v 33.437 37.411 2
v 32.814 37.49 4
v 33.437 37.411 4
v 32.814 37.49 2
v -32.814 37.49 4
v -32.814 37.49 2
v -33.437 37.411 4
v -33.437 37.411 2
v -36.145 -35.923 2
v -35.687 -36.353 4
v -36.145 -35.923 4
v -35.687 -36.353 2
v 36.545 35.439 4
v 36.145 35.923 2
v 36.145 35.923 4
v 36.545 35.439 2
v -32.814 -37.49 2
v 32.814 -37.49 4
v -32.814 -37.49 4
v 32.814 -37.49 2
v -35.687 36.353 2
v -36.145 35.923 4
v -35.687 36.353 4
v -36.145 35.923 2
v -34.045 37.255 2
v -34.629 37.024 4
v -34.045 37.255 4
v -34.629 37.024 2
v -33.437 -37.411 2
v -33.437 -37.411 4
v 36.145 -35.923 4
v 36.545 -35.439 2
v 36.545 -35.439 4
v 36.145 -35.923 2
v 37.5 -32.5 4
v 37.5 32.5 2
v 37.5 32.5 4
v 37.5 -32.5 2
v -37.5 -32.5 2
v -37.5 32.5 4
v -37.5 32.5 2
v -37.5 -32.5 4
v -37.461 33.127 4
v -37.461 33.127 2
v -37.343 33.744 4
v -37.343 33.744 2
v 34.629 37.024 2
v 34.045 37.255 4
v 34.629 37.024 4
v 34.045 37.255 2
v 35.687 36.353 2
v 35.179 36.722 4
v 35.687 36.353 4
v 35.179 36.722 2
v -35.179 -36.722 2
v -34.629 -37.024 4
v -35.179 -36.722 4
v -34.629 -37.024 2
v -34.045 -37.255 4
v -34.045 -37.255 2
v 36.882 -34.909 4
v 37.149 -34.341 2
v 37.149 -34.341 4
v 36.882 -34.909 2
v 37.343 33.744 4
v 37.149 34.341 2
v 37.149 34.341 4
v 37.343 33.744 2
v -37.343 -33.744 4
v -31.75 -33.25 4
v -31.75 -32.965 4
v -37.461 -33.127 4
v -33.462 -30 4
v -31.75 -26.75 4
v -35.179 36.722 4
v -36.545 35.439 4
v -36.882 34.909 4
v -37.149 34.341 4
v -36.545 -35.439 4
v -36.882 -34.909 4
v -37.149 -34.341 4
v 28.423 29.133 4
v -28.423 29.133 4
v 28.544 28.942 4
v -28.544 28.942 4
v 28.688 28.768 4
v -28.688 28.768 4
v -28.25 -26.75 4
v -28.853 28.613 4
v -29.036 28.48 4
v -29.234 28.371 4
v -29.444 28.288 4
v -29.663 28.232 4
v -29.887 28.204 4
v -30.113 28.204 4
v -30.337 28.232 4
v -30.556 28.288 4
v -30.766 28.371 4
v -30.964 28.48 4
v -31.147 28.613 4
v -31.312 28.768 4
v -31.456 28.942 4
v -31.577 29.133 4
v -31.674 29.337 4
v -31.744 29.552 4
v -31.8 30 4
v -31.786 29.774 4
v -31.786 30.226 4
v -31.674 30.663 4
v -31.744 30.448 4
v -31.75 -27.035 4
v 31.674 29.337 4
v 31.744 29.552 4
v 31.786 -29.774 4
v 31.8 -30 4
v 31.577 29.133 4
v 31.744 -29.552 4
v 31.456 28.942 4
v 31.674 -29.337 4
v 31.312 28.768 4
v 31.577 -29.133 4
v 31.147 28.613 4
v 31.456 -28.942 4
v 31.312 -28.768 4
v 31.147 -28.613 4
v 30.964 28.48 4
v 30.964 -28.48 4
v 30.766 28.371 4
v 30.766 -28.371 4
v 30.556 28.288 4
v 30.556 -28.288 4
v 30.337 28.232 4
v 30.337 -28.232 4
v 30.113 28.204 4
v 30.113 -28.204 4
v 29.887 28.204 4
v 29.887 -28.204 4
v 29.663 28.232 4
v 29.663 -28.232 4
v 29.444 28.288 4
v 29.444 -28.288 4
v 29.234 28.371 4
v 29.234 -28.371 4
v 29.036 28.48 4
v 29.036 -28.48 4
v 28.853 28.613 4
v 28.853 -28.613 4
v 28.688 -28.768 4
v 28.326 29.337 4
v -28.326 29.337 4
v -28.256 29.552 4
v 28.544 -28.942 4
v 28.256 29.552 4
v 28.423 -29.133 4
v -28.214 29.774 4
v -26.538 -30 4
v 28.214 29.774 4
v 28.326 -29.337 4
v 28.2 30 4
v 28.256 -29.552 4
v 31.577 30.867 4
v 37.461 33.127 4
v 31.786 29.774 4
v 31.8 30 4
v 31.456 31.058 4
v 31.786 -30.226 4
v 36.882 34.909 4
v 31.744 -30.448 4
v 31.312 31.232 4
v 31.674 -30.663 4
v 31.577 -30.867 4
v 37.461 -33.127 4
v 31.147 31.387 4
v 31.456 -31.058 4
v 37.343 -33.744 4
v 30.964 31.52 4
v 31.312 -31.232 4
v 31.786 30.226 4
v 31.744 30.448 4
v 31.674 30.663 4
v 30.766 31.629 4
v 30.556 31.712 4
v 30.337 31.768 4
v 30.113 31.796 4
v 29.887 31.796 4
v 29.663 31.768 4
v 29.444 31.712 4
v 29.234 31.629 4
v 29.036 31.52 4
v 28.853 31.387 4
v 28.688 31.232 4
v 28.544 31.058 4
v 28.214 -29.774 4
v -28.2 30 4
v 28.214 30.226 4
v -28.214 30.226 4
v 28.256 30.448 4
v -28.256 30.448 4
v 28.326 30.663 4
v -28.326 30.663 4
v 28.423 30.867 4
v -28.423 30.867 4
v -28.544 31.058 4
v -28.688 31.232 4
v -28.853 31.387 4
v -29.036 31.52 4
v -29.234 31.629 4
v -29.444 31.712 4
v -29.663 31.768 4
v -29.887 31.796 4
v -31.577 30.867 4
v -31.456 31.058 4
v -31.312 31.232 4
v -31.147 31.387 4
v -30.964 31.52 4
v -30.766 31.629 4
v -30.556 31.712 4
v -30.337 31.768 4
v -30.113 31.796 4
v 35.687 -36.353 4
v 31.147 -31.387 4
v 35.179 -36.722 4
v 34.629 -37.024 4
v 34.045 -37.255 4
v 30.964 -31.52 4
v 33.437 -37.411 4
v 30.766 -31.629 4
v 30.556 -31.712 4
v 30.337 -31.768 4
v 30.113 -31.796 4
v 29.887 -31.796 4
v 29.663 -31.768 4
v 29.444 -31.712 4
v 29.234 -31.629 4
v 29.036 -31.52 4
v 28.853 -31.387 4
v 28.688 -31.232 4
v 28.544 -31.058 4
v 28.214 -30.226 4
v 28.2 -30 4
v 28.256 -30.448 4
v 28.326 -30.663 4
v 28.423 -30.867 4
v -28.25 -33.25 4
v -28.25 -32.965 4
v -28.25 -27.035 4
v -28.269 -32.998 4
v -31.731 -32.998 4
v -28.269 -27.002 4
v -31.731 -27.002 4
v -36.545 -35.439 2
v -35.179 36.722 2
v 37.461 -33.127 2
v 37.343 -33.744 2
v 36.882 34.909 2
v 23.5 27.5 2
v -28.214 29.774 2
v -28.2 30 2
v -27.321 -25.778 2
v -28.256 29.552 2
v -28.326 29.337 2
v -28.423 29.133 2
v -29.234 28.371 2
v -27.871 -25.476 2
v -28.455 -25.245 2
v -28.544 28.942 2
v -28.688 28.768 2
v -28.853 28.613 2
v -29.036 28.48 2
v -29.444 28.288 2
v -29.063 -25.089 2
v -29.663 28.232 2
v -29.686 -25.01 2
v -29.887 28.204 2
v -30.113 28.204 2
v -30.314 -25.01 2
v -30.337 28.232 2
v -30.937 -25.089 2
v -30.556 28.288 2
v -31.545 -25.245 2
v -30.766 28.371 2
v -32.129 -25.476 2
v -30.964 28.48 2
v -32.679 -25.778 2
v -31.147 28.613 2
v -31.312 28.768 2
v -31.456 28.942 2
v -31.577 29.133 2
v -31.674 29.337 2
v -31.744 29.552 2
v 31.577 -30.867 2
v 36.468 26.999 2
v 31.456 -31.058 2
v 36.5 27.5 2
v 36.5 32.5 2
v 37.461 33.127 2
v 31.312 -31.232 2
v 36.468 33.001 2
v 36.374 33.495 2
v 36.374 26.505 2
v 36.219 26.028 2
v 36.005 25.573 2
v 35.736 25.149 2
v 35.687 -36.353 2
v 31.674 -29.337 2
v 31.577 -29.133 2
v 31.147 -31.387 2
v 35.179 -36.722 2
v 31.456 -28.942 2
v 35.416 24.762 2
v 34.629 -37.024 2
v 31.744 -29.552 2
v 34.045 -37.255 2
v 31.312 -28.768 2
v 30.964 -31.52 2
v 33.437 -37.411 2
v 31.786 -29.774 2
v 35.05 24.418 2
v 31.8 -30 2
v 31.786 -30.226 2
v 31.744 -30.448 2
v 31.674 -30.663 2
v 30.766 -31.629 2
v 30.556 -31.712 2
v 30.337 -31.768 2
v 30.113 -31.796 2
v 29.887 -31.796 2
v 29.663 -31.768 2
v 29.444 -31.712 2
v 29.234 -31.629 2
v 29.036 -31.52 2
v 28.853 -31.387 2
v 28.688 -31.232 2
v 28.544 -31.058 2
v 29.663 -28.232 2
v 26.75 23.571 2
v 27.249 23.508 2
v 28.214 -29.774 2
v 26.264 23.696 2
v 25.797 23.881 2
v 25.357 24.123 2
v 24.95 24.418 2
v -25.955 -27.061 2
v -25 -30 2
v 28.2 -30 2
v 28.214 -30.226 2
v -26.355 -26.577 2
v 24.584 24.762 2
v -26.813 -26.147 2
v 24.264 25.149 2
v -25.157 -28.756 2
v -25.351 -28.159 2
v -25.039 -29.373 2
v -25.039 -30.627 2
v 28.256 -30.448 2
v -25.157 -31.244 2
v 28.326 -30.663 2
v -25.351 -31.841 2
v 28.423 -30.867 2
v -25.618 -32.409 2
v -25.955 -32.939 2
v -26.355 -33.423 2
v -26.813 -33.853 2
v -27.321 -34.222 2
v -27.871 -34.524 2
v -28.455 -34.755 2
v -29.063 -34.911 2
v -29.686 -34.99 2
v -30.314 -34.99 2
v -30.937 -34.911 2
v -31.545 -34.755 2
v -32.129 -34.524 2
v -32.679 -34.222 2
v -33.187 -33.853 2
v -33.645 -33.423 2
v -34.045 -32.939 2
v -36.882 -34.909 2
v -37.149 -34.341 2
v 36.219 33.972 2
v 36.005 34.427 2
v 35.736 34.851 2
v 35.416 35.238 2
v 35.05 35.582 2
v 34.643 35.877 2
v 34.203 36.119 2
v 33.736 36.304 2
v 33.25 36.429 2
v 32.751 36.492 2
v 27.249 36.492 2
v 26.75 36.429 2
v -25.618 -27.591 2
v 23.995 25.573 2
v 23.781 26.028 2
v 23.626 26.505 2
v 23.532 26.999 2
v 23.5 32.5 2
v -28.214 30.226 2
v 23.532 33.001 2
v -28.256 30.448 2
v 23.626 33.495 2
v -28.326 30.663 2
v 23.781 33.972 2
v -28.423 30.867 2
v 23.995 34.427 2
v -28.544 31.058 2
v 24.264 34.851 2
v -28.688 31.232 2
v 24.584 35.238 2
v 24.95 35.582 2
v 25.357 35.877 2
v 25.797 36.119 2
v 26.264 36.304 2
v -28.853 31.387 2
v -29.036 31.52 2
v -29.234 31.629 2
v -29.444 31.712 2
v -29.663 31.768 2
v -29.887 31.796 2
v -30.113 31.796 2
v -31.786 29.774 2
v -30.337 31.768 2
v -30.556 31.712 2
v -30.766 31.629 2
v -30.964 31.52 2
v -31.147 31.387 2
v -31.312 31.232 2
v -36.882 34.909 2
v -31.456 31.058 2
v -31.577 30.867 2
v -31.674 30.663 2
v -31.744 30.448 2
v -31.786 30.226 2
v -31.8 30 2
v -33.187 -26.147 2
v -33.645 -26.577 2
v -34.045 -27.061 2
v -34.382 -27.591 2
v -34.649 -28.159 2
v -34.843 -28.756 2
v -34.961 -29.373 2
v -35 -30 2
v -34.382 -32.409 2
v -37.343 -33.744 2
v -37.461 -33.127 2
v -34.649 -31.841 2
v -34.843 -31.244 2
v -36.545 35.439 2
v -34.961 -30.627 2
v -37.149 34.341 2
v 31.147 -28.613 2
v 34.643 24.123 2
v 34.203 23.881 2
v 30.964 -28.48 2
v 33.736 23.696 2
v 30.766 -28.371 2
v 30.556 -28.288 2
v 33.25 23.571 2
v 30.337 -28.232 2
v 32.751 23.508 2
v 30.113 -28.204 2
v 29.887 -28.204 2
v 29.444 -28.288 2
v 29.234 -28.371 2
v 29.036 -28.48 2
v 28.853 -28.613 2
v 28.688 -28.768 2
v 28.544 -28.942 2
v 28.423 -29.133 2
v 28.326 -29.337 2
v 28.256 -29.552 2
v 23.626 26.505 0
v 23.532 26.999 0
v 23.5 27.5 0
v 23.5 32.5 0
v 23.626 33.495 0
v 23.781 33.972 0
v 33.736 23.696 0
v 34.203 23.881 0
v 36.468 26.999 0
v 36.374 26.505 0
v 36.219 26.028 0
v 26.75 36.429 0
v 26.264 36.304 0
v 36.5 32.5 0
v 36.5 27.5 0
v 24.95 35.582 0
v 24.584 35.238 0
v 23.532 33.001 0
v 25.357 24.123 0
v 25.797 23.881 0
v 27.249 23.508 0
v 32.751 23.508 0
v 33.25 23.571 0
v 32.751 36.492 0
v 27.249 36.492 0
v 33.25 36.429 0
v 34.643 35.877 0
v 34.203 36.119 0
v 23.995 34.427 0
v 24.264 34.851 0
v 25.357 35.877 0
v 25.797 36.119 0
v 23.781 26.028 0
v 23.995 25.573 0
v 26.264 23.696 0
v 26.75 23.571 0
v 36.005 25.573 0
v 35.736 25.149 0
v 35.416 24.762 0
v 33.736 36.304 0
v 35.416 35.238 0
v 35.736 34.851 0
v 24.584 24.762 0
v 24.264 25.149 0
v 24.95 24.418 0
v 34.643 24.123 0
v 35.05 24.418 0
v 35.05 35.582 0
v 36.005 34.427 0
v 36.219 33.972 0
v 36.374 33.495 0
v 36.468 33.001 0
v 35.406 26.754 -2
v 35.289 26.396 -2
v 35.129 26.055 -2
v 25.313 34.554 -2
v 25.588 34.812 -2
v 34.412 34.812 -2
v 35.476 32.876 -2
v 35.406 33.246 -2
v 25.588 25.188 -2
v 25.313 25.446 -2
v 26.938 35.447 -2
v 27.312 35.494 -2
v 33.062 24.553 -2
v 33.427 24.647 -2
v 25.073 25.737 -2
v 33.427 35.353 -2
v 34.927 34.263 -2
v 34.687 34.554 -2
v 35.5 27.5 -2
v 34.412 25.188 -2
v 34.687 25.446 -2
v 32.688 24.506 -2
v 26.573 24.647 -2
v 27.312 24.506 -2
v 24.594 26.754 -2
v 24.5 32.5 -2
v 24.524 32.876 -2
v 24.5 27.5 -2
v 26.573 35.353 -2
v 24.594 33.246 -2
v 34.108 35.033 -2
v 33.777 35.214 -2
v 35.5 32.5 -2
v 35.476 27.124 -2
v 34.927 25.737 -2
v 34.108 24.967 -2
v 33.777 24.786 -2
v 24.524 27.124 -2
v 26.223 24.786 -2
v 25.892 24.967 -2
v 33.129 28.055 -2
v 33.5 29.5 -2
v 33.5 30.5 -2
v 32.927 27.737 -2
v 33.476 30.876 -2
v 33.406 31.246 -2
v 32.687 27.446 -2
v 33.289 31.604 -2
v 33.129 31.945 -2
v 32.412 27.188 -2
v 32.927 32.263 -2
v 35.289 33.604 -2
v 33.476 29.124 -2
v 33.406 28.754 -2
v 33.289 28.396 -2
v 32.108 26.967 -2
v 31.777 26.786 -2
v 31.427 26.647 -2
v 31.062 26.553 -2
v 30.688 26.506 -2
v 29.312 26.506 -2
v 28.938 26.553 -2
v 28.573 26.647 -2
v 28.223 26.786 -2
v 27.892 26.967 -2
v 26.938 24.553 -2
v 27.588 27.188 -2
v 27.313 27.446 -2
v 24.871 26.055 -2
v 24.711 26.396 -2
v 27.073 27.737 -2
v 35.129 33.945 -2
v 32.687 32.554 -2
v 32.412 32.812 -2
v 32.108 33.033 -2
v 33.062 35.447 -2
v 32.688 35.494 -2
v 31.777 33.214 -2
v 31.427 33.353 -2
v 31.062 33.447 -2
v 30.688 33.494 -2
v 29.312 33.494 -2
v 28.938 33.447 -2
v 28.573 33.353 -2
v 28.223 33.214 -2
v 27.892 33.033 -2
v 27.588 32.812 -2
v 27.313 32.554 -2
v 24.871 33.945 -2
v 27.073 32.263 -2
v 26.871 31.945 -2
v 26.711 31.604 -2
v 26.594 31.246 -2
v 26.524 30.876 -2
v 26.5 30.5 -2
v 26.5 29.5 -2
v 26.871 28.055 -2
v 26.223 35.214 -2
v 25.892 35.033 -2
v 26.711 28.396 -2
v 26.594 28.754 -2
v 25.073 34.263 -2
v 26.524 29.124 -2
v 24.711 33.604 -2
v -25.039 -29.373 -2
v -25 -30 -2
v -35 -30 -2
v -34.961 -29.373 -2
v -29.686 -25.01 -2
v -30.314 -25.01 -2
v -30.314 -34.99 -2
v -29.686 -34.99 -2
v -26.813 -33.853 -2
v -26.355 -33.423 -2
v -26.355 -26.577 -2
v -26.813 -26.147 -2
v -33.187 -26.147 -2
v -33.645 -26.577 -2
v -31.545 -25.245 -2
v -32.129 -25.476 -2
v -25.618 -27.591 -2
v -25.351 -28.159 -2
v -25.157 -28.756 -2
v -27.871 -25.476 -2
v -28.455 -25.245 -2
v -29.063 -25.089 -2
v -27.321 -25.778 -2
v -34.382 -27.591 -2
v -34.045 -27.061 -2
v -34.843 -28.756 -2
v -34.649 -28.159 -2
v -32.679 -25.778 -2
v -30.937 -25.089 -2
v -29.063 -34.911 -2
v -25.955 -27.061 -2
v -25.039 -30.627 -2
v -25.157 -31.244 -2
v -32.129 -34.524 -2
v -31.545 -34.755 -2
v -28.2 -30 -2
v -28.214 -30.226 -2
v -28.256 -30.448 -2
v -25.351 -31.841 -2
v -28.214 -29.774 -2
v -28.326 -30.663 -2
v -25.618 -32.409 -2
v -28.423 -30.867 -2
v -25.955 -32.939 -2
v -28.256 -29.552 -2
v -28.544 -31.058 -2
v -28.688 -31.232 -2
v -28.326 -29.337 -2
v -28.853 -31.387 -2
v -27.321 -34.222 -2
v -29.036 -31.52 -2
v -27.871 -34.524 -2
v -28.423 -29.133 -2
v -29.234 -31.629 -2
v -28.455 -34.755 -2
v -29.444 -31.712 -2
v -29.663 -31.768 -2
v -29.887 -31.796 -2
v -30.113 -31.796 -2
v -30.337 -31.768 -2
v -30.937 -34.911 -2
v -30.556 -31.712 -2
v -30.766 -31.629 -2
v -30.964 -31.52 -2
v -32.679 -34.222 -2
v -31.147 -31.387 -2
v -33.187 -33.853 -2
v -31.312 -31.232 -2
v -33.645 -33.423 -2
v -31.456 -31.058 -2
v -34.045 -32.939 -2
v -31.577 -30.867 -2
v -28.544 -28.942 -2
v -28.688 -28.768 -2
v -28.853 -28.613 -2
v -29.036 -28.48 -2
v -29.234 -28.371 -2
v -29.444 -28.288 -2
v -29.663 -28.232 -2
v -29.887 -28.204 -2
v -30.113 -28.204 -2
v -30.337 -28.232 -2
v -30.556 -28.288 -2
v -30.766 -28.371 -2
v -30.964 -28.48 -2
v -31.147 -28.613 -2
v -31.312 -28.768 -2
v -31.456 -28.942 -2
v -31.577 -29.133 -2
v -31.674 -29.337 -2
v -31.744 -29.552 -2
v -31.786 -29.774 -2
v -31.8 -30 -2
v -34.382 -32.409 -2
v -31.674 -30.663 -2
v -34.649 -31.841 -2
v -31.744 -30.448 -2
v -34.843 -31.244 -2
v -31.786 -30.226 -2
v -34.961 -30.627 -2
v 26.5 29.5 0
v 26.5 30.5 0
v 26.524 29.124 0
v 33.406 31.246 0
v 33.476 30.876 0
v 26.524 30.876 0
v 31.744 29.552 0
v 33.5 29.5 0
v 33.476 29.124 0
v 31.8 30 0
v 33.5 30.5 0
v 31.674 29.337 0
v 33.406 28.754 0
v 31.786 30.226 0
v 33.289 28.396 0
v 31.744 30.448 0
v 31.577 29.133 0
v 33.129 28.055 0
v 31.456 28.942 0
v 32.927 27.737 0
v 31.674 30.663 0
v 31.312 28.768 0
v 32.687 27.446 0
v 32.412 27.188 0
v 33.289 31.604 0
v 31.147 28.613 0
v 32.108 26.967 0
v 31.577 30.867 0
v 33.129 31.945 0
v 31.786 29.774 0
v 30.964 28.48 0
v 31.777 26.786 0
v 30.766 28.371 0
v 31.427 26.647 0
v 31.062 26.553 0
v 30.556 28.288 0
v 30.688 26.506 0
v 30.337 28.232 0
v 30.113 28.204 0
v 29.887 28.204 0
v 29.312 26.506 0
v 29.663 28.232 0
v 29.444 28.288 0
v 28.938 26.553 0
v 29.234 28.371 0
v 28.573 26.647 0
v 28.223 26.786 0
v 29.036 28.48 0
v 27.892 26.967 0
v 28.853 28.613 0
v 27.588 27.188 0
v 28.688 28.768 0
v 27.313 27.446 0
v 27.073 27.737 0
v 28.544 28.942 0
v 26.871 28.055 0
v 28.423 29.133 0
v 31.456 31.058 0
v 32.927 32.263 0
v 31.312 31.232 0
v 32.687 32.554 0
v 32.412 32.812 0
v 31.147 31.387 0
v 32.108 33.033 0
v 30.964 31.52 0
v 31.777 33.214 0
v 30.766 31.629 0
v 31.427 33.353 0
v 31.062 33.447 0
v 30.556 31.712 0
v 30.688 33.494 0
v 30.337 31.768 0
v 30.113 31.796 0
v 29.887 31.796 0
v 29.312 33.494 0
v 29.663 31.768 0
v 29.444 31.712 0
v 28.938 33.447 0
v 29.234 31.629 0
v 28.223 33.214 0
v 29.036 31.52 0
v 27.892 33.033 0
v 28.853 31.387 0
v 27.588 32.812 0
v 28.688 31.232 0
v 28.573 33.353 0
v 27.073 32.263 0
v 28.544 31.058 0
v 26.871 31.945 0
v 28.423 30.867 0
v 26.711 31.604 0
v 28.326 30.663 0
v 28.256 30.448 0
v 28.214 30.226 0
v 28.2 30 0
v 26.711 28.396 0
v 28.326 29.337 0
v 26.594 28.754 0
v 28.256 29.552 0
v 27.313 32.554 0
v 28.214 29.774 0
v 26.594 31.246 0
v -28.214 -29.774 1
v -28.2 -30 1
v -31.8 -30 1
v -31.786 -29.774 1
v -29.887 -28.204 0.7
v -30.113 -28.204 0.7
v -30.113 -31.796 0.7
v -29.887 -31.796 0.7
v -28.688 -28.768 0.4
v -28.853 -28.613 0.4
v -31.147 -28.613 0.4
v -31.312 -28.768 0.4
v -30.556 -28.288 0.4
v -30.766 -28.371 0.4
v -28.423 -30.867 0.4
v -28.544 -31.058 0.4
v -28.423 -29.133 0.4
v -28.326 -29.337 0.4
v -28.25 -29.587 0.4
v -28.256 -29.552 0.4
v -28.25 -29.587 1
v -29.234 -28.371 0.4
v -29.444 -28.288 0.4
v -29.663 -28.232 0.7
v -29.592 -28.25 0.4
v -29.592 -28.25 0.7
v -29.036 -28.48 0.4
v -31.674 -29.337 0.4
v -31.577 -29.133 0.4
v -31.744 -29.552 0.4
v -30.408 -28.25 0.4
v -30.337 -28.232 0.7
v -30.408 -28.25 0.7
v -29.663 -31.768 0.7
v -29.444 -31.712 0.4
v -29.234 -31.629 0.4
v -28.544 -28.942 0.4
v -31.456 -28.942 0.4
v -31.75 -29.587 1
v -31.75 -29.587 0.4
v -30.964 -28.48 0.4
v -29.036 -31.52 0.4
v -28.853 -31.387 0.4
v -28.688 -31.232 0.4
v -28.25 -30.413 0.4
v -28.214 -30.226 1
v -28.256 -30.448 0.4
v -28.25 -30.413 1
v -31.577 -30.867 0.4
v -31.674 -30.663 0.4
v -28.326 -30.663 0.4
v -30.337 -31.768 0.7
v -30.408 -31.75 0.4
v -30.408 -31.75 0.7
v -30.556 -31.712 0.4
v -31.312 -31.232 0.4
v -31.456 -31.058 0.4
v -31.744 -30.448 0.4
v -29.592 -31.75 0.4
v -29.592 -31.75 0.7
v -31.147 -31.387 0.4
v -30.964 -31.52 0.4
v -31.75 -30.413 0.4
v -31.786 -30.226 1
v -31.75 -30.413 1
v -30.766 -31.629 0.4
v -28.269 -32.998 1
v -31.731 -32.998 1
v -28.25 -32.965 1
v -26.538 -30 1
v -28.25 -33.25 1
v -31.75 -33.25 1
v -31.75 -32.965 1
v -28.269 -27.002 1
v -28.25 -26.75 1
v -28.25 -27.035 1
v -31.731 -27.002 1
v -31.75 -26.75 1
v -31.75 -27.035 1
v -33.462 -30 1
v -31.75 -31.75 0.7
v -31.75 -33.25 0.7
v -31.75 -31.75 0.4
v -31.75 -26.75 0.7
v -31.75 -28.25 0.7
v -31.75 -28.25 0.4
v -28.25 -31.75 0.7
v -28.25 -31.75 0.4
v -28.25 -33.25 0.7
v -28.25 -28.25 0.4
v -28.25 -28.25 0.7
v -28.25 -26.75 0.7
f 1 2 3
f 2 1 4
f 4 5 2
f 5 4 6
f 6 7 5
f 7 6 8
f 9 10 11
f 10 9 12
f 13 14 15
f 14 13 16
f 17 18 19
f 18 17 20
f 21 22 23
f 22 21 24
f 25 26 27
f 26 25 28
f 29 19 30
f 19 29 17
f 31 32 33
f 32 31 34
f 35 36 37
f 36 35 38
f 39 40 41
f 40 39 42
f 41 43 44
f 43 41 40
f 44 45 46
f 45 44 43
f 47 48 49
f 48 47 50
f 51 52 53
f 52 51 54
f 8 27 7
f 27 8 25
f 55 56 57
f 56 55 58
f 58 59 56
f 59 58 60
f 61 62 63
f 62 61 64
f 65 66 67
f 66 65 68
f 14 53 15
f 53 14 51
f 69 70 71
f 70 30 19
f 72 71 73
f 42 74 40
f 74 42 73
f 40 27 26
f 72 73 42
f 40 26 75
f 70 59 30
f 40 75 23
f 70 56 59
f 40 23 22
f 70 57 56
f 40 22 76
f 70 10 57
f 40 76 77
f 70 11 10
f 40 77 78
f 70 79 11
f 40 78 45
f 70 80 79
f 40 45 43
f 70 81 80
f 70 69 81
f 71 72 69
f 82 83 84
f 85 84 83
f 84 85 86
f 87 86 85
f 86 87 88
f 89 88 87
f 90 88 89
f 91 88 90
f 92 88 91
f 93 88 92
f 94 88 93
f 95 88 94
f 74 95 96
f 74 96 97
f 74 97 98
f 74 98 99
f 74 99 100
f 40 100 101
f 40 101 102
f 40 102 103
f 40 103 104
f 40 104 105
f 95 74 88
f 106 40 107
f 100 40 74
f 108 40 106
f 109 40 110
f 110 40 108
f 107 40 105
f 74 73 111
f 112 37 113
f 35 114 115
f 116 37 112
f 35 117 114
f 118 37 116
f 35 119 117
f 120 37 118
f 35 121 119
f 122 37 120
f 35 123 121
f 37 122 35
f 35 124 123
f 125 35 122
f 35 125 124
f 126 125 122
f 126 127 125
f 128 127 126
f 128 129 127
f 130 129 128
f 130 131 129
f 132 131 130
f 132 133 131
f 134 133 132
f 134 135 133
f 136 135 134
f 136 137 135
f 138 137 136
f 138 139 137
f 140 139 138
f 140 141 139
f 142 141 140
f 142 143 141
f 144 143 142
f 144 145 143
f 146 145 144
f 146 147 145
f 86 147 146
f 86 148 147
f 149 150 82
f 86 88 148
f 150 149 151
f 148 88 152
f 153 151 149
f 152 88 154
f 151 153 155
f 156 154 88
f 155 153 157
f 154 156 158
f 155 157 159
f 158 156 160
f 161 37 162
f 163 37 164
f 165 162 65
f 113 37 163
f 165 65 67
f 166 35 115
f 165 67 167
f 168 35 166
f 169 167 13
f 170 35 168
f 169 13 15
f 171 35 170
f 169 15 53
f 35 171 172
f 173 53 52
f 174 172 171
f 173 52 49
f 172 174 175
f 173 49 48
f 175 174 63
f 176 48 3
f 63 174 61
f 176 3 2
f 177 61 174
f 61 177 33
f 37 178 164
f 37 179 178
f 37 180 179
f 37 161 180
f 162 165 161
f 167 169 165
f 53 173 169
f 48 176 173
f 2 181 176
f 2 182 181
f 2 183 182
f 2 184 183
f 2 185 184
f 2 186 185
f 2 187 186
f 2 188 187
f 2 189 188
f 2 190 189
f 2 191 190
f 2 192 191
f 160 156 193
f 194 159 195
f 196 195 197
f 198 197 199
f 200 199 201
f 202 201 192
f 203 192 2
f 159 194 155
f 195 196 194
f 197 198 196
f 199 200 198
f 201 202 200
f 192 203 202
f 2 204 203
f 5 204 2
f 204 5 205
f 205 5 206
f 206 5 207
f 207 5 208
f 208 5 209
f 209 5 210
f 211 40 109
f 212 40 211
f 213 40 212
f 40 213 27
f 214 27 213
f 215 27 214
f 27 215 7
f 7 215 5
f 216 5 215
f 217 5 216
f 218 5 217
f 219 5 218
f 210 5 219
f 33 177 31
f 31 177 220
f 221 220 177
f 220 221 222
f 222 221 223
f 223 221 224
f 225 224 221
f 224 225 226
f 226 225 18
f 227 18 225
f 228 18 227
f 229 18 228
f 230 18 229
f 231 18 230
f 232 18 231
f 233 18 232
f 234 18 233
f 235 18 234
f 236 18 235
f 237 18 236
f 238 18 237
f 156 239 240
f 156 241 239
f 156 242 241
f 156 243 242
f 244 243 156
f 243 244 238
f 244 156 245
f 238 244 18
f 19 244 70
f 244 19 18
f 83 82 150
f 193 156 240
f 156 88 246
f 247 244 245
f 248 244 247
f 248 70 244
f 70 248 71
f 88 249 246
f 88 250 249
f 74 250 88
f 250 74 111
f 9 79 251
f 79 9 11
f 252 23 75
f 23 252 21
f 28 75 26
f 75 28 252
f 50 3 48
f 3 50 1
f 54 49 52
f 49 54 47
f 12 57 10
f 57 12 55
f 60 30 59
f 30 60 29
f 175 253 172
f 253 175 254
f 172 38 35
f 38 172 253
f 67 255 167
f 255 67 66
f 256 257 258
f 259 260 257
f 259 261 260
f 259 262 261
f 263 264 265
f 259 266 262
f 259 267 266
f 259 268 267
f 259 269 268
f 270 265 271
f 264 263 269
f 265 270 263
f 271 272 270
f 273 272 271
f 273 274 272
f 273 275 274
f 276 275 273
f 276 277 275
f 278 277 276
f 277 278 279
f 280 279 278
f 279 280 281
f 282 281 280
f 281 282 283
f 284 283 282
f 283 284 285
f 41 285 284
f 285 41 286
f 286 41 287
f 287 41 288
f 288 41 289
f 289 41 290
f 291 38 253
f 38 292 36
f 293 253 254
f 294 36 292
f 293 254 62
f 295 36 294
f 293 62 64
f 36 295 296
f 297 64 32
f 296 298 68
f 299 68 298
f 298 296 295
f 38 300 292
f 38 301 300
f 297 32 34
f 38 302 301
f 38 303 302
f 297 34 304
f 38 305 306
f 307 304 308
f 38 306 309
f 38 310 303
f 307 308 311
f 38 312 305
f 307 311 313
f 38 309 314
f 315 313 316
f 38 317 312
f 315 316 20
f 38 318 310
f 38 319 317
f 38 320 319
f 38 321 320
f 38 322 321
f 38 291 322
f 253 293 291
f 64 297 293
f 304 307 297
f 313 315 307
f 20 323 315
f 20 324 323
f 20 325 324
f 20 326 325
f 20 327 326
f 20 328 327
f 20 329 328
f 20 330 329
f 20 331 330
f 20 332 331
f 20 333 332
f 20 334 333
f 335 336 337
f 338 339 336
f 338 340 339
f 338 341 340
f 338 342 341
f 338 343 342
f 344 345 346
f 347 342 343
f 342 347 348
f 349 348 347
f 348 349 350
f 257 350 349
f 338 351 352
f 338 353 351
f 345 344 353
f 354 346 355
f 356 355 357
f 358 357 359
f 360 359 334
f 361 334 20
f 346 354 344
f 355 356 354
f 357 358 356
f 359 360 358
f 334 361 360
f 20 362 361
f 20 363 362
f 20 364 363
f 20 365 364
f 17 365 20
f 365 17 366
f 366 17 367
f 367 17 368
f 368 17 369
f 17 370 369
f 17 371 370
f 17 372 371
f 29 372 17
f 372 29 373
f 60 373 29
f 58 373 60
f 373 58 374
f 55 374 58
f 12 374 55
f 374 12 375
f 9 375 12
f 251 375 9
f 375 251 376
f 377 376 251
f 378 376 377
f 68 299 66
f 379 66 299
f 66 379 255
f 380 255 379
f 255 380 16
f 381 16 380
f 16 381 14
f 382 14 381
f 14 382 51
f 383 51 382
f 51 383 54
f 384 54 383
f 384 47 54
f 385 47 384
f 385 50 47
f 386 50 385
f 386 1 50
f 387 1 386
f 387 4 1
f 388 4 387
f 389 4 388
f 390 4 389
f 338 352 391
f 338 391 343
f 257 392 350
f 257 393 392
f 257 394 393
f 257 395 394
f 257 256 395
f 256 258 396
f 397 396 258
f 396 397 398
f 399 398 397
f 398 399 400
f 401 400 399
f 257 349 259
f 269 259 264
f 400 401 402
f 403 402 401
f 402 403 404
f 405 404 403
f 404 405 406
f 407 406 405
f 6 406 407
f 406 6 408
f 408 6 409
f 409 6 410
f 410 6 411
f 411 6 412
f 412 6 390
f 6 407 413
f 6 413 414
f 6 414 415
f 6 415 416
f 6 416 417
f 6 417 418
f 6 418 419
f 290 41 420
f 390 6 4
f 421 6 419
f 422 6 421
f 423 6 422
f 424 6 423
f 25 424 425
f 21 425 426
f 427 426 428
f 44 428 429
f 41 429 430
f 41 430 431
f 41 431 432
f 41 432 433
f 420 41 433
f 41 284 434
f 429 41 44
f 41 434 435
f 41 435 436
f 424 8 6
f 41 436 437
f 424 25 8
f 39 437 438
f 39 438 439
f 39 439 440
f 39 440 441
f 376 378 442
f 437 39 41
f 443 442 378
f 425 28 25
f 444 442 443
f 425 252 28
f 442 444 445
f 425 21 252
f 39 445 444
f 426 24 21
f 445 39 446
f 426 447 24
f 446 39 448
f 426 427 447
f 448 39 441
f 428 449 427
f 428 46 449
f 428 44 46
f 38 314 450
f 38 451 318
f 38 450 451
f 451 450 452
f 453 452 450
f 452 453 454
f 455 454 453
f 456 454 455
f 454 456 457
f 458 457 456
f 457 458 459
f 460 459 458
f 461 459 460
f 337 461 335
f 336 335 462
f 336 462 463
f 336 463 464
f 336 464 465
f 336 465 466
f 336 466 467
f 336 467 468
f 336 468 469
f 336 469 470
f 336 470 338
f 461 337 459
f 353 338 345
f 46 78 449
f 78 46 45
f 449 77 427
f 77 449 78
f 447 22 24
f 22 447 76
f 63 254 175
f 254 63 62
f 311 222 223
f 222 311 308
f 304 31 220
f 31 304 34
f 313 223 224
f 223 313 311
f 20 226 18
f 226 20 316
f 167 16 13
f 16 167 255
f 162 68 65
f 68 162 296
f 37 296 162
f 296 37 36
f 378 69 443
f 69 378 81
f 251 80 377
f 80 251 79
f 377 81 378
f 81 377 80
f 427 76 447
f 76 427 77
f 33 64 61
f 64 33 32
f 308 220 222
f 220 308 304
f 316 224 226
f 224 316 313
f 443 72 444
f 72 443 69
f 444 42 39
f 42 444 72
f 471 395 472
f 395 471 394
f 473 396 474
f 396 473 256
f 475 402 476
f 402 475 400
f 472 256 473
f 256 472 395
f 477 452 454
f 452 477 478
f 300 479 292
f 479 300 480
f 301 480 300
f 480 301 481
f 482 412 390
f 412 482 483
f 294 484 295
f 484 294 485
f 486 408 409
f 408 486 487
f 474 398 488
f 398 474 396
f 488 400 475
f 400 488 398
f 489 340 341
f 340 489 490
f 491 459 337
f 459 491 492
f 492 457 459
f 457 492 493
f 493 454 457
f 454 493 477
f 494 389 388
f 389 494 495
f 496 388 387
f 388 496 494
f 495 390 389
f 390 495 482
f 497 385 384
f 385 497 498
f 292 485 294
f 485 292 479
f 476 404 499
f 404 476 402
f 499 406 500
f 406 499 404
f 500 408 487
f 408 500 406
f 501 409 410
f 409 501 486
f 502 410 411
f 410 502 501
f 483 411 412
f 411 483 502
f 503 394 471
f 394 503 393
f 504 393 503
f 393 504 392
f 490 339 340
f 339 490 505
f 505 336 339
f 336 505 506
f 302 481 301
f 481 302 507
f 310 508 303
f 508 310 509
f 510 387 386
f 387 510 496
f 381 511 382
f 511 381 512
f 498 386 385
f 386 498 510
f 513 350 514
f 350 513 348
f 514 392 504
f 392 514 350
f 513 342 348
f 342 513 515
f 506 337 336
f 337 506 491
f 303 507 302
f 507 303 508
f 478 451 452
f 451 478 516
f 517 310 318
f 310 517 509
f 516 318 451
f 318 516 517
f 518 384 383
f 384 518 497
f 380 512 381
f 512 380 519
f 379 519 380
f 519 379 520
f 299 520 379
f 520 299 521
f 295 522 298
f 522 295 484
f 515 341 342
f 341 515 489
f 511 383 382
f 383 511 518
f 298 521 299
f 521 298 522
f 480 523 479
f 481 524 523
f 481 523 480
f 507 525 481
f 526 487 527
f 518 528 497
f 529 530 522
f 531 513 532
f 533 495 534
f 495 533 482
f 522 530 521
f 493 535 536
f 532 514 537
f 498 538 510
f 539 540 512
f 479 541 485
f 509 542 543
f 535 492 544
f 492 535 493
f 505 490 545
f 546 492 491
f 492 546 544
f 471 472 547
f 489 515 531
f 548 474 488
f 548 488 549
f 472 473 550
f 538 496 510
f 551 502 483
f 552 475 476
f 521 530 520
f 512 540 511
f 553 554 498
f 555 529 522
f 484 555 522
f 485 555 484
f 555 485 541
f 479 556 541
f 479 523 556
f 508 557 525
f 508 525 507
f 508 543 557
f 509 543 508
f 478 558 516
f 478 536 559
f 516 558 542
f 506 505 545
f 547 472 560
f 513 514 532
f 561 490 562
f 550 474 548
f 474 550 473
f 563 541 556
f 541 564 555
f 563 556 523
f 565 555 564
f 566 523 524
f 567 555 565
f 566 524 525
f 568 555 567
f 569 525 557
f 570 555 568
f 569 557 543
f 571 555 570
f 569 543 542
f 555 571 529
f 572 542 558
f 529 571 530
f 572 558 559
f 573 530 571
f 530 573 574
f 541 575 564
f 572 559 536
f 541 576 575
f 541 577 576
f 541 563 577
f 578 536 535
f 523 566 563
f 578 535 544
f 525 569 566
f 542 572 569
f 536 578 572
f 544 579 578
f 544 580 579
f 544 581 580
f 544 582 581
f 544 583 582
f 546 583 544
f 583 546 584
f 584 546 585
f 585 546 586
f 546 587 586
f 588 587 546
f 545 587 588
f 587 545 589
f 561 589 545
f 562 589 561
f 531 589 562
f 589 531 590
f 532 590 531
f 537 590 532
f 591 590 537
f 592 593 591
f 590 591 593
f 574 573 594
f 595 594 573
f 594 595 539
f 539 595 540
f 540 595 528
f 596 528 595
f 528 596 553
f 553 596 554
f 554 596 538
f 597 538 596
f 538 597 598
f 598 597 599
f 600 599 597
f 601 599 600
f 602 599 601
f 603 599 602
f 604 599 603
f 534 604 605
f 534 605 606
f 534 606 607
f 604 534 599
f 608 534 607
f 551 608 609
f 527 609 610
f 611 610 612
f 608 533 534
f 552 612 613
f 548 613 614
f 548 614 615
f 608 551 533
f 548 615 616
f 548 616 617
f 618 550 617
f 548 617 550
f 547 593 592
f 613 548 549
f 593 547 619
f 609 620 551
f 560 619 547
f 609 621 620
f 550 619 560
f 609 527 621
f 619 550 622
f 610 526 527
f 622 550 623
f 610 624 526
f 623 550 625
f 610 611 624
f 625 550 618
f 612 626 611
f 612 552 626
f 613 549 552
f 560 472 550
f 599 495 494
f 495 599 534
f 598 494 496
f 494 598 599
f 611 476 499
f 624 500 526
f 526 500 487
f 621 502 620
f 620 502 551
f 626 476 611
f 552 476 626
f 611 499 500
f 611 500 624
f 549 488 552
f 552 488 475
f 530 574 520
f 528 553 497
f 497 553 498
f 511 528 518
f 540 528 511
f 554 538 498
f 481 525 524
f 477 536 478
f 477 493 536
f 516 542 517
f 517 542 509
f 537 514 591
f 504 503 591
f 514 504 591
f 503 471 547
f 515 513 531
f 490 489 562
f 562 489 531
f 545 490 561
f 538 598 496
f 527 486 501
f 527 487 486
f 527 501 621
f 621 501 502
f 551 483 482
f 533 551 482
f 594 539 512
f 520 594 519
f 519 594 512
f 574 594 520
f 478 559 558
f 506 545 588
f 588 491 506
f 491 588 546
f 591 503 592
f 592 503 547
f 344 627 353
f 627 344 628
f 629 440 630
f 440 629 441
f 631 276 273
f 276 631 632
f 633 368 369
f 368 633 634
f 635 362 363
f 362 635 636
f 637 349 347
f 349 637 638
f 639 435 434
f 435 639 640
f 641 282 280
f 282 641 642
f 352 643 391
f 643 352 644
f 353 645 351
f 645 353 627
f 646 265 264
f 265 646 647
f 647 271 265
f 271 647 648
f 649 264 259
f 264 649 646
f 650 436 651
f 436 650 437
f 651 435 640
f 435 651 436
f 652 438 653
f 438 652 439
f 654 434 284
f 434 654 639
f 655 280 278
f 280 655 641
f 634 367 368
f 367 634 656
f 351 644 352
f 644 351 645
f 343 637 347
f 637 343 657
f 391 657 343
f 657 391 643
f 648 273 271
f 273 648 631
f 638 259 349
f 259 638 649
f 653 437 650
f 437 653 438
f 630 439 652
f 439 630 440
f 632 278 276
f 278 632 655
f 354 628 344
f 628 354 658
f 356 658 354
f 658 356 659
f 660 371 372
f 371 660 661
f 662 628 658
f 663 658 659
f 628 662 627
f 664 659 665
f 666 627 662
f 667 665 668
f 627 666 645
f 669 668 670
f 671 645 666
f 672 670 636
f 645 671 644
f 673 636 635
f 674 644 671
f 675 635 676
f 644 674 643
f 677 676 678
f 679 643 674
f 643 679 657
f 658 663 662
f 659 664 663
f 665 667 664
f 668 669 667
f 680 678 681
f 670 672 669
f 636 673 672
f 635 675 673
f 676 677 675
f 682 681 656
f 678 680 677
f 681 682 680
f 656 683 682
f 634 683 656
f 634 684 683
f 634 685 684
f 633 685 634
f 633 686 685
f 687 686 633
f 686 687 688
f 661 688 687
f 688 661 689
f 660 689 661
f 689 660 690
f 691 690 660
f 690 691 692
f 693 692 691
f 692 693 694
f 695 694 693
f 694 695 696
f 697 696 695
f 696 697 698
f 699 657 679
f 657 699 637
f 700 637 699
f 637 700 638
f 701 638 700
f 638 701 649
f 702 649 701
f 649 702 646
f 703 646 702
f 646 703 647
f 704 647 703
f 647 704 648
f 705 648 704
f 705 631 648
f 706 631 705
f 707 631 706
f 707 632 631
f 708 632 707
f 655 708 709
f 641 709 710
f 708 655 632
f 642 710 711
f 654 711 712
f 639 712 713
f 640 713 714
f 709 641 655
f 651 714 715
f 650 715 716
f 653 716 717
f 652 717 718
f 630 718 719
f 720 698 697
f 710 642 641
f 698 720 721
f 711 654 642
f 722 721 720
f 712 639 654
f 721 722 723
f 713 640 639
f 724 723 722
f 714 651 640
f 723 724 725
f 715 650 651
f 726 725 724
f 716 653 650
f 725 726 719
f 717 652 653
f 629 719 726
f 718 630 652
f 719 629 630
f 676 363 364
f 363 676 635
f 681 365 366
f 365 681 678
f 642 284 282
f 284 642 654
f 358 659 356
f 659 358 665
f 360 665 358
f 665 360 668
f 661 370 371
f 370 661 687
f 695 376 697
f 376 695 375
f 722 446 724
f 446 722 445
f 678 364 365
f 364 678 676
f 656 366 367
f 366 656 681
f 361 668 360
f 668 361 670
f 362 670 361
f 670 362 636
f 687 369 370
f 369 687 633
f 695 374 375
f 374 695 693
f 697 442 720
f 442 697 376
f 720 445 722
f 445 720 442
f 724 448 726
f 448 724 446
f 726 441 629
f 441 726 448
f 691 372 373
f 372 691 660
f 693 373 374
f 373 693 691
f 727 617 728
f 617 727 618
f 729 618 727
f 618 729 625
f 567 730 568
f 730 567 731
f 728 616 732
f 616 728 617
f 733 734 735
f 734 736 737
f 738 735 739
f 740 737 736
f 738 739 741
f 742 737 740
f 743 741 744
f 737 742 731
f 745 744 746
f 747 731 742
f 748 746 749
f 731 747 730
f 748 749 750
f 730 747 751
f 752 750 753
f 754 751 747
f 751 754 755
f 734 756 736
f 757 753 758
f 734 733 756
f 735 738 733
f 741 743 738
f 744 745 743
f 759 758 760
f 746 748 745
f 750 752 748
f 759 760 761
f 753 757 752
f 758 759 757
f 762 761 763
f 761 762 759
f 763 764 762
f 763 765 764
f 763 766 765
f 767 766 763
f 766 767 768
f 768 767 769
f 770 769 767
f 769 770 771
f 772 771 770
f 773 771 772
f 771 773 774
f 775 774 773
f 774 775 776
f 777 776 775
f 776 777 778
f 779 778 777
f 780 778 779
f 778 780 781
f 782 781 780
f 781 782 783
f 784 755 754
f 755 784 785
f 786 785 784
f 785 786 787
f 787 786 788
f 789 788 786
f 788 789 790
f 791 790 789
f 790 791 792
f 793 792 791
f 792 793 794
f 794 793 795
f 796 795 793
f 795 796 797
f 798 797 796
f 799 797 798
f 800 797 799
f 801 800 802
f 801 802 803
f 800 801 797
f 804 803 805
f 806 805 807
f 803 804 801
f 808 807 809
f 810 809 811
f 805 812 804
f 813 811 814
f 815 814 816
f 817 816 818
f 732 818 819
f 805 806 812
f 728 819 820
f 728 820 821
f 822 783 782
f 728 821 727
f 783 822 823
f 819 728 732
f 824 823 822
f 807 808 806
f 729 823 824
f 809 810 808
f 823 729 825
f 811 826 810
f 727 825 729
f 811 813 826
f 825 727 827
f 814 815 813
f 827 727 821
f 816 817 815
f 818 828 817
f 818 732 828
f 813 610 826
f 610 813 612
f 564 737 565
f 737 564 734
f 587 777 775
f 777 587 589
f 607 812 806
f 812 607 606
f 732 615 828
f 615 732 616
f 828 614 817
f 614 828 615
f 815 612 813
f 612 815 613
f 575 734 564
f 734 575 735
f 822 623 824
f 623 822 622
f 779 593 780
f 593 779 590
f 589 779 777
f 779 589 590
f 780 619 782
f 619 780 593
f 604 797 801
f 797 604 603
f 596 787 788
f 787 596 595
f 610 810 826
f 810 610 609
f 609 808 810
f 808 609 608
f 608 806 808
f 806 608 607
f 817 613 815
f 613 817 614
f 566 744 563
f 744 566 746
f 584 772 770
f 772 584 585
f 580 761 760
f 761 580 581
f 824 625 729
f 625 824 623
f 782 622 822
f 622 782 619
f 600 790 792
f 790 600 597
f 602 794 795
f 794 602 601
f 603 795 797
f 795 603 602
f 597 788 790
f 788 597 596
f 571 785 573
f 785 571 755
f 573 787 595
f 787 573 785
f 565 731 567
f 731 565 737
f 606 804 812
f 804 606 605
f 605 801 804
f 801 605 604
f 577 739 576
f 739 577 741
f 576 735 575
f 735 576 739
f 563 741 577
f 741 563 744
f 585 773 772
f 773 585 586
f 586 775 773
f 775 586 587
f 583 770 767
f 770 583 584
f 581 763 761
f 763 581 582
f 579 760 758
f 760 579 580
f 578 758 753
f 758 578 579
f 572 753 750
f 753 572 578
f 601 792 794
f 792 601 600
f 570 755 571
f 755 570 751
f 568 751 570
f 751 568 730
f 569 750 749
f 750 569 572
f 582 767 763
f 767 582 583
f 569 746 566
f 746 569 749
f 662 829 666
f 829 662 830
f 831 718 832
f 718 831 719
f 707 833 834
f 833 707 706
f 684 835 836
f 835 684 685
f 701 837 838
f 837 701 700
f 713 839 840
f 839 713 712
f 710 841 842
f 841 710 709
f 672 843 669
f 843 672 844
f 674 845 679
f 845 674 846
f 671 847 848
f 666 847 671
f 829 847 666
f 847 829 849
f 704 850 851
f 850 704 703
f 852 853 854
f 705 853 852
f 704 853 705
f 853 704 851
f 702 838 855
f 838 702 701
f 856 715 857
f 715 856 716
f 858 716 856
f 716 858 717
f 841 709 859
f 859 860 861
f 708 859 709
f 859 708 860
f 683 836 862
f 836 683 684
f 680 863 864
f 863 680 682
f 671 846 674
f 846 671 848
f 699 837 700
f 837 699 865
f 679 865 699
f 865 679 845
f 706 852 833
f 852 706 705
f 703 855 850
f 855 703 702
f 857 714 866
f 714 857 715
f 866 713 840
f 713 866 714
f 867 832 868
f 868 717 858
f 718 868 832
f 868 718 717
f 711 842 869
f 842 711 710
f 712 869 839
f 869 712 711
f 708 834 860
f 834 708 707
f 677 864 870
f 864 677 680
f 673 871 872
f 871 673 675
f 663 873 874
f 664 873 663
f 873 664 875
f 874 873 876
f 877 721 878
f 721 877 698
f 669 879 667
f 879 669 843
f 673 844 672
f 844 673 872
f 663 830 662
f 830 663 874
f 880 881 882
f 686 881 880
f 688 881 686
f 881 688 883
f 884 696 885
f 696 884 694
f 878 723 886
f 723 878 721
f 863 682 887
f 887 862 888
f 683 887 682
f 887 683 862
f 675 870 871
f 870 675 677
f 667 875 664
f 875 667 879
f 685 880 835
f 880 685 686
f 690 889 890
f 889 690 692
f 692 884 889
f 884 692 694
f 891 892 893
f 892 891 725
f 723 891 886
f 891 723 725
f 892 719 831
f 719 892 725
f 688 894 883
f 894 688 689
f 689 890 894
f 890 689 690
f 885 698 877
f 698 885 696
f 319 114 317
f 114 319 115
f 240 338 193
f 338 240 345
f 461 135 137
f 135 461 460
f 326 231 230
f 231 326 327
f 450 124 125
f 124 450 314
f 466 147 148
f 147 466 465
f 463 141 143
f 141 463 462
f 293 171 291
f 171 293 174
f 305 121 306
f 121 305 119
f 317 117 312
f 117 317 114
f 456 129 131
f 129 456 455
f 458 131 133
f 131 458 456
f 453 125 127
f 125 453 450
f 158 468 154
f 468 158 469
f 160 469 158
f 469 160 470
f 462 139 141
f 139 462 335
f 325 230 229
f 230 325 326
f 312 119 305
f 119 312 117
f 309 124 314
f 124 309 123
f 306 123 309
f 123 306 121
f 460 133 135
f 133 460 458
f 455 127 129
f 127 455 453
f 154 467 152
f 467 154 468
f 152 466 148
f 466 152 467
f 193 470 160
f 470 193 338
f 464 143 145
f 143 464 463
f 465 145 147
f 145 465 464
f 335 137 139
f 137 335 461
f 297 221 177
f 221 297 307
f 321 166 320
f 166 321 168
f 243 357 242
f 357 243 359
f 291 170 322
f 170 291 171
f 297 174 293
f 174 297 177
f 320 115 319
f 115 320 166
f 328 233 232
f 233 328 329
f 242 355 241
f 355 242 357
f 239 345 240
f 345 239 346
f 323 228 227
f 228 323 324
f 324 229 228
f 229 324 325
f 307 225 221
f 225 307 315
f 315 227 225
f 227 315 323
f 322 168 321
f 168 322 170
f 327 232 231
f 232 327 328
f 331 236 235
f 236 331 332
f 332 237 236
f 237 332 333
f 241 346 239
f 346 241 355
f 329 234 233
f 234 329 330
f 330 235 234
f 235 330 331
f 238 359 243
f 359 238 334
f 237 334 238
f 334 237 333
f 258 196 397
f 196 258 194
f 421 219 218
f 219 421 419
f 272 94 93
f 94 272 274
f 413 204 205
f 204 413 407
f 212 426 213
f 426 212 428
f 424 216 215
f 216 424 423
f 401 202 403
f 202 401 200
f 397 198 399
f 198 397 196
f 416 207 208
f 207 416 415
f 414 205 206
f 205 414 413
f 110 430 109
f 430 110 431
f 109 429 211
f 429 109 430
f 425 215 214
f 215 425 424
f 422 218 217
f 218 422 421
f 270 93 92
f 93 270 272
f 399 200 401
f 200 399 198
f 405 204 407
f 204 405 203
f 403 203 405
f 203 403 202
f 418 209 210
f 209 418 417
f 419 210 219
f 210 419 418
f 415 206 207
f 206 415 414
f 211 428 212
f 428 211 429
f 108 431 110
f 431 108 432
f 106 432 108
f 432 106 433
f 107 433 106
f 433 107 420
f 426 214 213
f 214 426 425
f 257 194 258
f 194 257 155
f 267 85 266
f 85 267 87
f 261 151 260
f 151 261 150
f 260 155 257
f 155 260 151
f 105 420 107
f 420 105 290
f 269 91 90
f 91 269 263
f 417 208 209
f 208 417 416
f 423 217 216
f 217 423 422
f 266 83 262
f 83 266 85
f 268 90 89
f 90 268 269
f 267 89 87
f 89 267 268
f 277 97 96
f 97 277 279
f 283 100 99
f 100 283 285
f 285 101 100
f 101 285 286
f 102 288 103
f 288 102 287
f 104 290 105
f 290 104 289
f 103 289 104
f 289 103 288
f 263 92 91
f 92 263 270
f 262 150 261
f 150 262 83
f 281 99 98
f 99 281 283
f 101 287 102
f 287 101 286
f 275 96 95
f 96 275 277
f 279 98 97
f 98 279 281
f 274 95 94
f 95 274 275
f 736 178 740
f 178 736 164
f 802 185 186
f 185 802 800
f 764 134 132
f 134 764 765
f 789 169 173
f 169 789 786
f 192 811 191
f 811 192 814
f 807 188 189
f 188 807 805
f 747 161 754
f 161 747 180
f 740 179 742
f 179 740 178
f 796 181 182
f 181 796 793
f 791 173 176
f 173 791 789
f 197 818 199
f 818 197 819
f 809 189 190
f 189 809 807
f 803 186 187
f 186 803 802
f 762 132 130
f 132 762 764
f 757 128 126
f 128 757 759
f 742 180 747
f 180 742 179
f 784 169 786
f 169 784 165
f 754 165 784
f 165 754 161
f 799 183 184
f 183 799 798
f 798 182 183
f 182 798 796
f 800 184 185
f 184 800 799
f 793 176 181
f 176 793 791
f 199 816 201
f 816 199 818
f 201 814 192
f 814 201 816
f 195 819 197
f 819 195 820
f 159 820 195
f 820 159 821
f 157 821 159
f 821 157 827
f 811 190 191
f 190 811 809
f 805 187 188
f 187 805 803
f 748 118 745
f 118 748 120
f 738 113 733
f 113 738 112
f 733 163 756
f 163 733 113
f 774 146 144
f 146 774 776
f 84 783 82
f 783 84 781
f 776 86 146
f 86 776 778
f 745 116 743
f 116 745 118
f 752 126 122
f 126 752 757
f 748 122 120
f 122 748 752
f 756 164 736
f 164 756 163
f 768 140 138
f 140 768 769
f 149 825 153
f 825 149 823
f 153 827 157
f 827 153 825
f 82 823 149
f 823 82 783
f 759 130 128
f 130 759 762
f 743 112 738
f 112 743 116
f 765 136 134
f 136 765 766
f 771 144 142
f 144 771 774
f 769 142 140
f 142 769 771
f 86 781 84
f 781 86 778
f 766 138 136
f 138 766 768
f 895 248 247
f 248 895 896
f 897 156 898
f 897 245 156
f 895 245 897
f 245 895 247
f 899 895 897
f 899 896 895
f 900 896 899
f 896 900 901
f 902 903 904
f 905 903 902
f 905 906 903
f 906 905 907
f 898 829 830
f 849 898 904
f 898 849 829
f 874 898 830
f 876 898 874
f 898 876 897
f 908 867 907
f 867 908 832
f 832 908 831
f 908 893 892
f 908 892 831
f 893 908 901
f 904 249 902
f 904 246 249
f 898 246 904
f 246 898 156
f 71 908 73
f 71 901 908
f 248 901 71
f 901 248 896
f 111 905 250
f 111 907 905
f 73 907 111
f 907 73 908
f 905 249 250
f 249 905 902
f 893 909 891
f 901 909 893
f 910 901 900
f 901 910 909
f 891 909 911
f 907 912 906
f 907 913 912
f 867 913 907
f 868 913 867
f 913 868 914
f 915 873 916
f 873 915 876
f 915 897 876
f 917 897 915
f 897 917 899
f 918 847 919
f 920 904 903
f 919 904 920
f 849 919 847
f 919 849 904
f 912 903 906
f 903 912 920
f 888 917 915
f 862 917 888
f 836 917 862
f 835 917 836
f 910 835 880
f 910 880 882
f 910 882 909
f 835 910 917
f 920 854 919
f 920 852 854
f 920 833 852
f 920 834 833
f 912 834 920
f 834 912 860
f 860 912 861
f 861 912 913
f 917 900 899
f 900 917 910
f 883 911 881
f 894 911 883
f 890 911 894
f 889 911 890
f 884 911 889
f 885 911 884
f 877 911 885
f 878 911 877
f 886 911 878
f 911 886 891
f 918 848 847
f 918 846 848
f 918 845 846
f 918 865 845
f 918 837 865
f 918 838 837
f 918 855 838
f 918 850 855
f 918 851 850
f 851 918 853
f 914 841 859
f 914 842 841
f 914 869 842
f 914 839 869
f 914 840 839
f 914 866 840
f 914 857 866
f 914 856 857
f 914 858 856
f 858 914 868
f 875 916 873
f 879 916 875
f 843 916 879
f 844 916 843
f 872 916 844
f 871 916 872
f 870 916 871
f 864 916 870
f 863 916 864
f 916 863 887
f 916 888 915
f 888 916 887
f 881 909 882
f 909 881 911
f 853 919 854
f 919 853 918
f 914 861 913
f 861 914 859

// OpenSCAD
$fn = 50;


difference() {
	union() {
		translate(v = [0, 0, 2]) {
			rotate(a = [0, 0, 0]) {
				hull() {
					translate(v = [-32.5000000000, 32.5000000000, 0]) {
						rotate(a = [0, 0, 0]) {
							translate(v = [0, 0, 0]) {
								rotate(a = [0, 0, 0]) {
									cylinder(h = 2, r = 5);
								}
							}
						}
					}
					translate(v = [32.5000000000, 32.5000000000, 0]) {
						rotate(a = [0, 0, 0]) {
							translate(v = [0, 0, 0]) {
								rotate(a = [0, 0, 0]) {
									cylinder(h = 2, r = 5);
								}
							}
						}
					}
					translate(v = [-32.5000000000, -32.5000000000, 0]) {
						rotate(a = [0, 0, 0]) {
							translate(v = [0, 0, 0]) {
								rotate(a = [0, 0, 0]) {
									cylinder(h = 2, r = 5);
								}
							}
						}
					}
					translate(v = [32.5000000000, -32.5000000000, 0]) {
						rotate(a = [0, 0, 0]) {
							translate(v = [0, 0, 0]) {
								rotate(a = [0, 0, 0]) {
									cylinder(h = 2, r = 5);
								}
							}
						}
					}
				}
			}
		}
		translate(v = [30.0000000000, 30.0000000000, 0]) {
			rotate(a = [0, 0, 0]) {
				hull() {
					translate(v = [-2.5000000000, 2.5000000000, 0]) {
						rotate(a = [0, 0, 0]) {
							cylinder(h = 2, r1 = 4.0000000000, r2 = 4.0000000000);
						}
					}
					translate(v = [2.5000000000, 2.5000000000, 0]) {
						rotate(a = [0, 0, 0]) {
							cylinder(h = 2, r1 = 4.0000000000, r2 = 4.0000000000);
						}
					}
					translate(v = [-2.5000000000, -2.5000000000, 0]) {
						rotate(a = [0, 0, 0]) {
							cylinder(h = 2, r1 = 4.0000000000, r2 = 4.0000000000);
						}
					}
					translate(v = [2.5000000000, -2.5000000000, 0]) {
						rotate(a = [0, 0, 0]) {
							cylinder(h = 2, r1 = 4.0000000000, r2 = 4.0000000000);
						}
					}
				}
			}
		}
		translate(v = [30.0000000000, 30.0000000000, -2]) {
			rotate(a = [0, 180, 0]) {
				hull() {
					translate(v = [-2.5000000000, 2.5000000000, 0]) {
						rotate(a = [0, 180, 0]) {
							cylinder(h = 2, r1 = 3.0000000000, r2 = 4.0000000000);
						}
					}
					translate(v = [2.5000000000, 2.5000000000, 0]) {
						rotate(a = [0, 180, 0]) {
							cylinder(h = 2, r1 = 3.0000000000, r2 = 4.0000000000);
						}
					}
					translate(v = [-2.5000000000, -2.5000000000, 0]) {
						rotate(a = [0, 180, 0]) {
							cylinder(h = 2, r1 = 3.0000000000, r2 = 4.0000000000);
						}
					}
					translate(v = [2.5000000000, -2.5000000000, 0]) {
						rotate(a = [0, 180, 0]) {
							cylinder(h = 2, r1 = 3.0000000000, r2 = 4.0000000000);
						}
					}
				}
			}
		}
		translate(v = [-30.0000000000, -30.0000000000, -2.0000000000]) {
			rotate(a = [0, 0, 0]) {
				cylinder(h = 4, r = 5);
			}
		}
	}
	union() {
		translate(v = [30.0000000000, 30.0000000000, -2]) {
			rotate(a = [0, 0, 0]) {
				hull() {
					translate(v = [-0.5000000000, 0.5000000000, 0]) {
						rotate(a = [0, 0, 0]) {
							translate(v = [0, 0, 0]) {
								rotate(a = [0, 0, 0]) {
									cylinder(h = 2, r = 3.0000000000);
								}
							}
						}
					}
					translate(v = [0.5000000000, 0.5000000000, 0]) {
						rotate(a = [0, 0, 0]) {
							translate(v = [0, 0, 0]) {
								rotate(a = [0, 0, 0]) {
									cylinder(h = 2, r = 3.0000000000);
								}
							}
						}
					}
					translate(v = [-0.5000000000, -0.5000000000, 0]) {
						rotate(a = [0, 0, 0]) {
							translate(v = [0, 0, 0]) {
								rotate(a = [0, 0, 0]) {
									cylinder(h = 2, r = 3.0000000000);
								}
							}
						}
					}
					translate(v = [0.5000000000, -0.5000000000, 0]) {
						rotate(a = [0, 0, 0]) {
							translate(v = [0, 0, 0]) {
								rotate(a = [0, 0, 0]) {
									cylinder(h = 2, r = 3.0000000000);
								}
							}
						}
					}
				}
			}
		}
		translate(v = [-30.0000000000, -30.0000000000, -50]) {
			rotate(a = [0, 0, 0]) {
				cylinder(h = 100, r = 1.8000000000);
			}
		}
		translate(v = [30.0000000000, -30.0000000000, -50]) {
			rotate(a = [0, 0, 0]) {
				cylinder(h = 100, r = 1.8000000000);
			}
		}
		translate(v = [-30.0000000000, 30.0000000000, -50]) {
			rotate(a = [0, 0, 0]) {
				cylinder(h = 100, r = 1.8000000000);
			}
		}
		translate(v = [30.0000000000, 30.0000000000, -50]) {
			rotate(a = [0, 0, 0]) {
				cylinder(h = 100, r = 1.8000000000);
			}
		}
		translate(v = [-30.0000000000, -30.0000000000, 1]) {
			rotate(a = [0, 0, 0]) {
				#translate(v = [0, 0, 0]) {
					rotate(a = [0, 0, 0]) {
						linear_extrude(height = 3) {
							polygon(points = [[3.4620000000, 0.0000000000], [1.7310000000, 2.9981799479], [-1.7310000000, 2.9981799479], [-3.4620000000, 0.0000000000], [-1.7310000000, -2.9981799479], [1.7310000000, -2.9981799479]]);
						}
					}
				}
			}
		}
		#translate(v = [-31.7500000000, -33.2500000000, 4]) {
			rotate(a = [0, 0, 0]) {
				cube(size = [3.5000000000, 6.5000000000, 0.3000000000]);
			}
		}
		#translate(v = [-31.7500000000, -31.7500000000, 4.3000000000]) {
			rotate(a = [0, 0, 0]) {
				cube(size = [3.5000000000, 3.5000000000, 0.3000000000]);
			}
		}
		#translate(v = [-31.7500000000, -33.2500000000, 0.7000000000]) {
			rotate(a = [0, 0, 0]) {
				cube(size = [3.5000000000, 6.5000000000, 0.3000000000]);
			}
		}
		#translate(v = [-31.7500000000, -31.7500000000, 0.4000000000]) {
			rotate(a = [0, 0, 0]) {
				cube(size = [3.5000000000, 3.5000000000, 0.3000000000]);
			}
		}
	}
}
